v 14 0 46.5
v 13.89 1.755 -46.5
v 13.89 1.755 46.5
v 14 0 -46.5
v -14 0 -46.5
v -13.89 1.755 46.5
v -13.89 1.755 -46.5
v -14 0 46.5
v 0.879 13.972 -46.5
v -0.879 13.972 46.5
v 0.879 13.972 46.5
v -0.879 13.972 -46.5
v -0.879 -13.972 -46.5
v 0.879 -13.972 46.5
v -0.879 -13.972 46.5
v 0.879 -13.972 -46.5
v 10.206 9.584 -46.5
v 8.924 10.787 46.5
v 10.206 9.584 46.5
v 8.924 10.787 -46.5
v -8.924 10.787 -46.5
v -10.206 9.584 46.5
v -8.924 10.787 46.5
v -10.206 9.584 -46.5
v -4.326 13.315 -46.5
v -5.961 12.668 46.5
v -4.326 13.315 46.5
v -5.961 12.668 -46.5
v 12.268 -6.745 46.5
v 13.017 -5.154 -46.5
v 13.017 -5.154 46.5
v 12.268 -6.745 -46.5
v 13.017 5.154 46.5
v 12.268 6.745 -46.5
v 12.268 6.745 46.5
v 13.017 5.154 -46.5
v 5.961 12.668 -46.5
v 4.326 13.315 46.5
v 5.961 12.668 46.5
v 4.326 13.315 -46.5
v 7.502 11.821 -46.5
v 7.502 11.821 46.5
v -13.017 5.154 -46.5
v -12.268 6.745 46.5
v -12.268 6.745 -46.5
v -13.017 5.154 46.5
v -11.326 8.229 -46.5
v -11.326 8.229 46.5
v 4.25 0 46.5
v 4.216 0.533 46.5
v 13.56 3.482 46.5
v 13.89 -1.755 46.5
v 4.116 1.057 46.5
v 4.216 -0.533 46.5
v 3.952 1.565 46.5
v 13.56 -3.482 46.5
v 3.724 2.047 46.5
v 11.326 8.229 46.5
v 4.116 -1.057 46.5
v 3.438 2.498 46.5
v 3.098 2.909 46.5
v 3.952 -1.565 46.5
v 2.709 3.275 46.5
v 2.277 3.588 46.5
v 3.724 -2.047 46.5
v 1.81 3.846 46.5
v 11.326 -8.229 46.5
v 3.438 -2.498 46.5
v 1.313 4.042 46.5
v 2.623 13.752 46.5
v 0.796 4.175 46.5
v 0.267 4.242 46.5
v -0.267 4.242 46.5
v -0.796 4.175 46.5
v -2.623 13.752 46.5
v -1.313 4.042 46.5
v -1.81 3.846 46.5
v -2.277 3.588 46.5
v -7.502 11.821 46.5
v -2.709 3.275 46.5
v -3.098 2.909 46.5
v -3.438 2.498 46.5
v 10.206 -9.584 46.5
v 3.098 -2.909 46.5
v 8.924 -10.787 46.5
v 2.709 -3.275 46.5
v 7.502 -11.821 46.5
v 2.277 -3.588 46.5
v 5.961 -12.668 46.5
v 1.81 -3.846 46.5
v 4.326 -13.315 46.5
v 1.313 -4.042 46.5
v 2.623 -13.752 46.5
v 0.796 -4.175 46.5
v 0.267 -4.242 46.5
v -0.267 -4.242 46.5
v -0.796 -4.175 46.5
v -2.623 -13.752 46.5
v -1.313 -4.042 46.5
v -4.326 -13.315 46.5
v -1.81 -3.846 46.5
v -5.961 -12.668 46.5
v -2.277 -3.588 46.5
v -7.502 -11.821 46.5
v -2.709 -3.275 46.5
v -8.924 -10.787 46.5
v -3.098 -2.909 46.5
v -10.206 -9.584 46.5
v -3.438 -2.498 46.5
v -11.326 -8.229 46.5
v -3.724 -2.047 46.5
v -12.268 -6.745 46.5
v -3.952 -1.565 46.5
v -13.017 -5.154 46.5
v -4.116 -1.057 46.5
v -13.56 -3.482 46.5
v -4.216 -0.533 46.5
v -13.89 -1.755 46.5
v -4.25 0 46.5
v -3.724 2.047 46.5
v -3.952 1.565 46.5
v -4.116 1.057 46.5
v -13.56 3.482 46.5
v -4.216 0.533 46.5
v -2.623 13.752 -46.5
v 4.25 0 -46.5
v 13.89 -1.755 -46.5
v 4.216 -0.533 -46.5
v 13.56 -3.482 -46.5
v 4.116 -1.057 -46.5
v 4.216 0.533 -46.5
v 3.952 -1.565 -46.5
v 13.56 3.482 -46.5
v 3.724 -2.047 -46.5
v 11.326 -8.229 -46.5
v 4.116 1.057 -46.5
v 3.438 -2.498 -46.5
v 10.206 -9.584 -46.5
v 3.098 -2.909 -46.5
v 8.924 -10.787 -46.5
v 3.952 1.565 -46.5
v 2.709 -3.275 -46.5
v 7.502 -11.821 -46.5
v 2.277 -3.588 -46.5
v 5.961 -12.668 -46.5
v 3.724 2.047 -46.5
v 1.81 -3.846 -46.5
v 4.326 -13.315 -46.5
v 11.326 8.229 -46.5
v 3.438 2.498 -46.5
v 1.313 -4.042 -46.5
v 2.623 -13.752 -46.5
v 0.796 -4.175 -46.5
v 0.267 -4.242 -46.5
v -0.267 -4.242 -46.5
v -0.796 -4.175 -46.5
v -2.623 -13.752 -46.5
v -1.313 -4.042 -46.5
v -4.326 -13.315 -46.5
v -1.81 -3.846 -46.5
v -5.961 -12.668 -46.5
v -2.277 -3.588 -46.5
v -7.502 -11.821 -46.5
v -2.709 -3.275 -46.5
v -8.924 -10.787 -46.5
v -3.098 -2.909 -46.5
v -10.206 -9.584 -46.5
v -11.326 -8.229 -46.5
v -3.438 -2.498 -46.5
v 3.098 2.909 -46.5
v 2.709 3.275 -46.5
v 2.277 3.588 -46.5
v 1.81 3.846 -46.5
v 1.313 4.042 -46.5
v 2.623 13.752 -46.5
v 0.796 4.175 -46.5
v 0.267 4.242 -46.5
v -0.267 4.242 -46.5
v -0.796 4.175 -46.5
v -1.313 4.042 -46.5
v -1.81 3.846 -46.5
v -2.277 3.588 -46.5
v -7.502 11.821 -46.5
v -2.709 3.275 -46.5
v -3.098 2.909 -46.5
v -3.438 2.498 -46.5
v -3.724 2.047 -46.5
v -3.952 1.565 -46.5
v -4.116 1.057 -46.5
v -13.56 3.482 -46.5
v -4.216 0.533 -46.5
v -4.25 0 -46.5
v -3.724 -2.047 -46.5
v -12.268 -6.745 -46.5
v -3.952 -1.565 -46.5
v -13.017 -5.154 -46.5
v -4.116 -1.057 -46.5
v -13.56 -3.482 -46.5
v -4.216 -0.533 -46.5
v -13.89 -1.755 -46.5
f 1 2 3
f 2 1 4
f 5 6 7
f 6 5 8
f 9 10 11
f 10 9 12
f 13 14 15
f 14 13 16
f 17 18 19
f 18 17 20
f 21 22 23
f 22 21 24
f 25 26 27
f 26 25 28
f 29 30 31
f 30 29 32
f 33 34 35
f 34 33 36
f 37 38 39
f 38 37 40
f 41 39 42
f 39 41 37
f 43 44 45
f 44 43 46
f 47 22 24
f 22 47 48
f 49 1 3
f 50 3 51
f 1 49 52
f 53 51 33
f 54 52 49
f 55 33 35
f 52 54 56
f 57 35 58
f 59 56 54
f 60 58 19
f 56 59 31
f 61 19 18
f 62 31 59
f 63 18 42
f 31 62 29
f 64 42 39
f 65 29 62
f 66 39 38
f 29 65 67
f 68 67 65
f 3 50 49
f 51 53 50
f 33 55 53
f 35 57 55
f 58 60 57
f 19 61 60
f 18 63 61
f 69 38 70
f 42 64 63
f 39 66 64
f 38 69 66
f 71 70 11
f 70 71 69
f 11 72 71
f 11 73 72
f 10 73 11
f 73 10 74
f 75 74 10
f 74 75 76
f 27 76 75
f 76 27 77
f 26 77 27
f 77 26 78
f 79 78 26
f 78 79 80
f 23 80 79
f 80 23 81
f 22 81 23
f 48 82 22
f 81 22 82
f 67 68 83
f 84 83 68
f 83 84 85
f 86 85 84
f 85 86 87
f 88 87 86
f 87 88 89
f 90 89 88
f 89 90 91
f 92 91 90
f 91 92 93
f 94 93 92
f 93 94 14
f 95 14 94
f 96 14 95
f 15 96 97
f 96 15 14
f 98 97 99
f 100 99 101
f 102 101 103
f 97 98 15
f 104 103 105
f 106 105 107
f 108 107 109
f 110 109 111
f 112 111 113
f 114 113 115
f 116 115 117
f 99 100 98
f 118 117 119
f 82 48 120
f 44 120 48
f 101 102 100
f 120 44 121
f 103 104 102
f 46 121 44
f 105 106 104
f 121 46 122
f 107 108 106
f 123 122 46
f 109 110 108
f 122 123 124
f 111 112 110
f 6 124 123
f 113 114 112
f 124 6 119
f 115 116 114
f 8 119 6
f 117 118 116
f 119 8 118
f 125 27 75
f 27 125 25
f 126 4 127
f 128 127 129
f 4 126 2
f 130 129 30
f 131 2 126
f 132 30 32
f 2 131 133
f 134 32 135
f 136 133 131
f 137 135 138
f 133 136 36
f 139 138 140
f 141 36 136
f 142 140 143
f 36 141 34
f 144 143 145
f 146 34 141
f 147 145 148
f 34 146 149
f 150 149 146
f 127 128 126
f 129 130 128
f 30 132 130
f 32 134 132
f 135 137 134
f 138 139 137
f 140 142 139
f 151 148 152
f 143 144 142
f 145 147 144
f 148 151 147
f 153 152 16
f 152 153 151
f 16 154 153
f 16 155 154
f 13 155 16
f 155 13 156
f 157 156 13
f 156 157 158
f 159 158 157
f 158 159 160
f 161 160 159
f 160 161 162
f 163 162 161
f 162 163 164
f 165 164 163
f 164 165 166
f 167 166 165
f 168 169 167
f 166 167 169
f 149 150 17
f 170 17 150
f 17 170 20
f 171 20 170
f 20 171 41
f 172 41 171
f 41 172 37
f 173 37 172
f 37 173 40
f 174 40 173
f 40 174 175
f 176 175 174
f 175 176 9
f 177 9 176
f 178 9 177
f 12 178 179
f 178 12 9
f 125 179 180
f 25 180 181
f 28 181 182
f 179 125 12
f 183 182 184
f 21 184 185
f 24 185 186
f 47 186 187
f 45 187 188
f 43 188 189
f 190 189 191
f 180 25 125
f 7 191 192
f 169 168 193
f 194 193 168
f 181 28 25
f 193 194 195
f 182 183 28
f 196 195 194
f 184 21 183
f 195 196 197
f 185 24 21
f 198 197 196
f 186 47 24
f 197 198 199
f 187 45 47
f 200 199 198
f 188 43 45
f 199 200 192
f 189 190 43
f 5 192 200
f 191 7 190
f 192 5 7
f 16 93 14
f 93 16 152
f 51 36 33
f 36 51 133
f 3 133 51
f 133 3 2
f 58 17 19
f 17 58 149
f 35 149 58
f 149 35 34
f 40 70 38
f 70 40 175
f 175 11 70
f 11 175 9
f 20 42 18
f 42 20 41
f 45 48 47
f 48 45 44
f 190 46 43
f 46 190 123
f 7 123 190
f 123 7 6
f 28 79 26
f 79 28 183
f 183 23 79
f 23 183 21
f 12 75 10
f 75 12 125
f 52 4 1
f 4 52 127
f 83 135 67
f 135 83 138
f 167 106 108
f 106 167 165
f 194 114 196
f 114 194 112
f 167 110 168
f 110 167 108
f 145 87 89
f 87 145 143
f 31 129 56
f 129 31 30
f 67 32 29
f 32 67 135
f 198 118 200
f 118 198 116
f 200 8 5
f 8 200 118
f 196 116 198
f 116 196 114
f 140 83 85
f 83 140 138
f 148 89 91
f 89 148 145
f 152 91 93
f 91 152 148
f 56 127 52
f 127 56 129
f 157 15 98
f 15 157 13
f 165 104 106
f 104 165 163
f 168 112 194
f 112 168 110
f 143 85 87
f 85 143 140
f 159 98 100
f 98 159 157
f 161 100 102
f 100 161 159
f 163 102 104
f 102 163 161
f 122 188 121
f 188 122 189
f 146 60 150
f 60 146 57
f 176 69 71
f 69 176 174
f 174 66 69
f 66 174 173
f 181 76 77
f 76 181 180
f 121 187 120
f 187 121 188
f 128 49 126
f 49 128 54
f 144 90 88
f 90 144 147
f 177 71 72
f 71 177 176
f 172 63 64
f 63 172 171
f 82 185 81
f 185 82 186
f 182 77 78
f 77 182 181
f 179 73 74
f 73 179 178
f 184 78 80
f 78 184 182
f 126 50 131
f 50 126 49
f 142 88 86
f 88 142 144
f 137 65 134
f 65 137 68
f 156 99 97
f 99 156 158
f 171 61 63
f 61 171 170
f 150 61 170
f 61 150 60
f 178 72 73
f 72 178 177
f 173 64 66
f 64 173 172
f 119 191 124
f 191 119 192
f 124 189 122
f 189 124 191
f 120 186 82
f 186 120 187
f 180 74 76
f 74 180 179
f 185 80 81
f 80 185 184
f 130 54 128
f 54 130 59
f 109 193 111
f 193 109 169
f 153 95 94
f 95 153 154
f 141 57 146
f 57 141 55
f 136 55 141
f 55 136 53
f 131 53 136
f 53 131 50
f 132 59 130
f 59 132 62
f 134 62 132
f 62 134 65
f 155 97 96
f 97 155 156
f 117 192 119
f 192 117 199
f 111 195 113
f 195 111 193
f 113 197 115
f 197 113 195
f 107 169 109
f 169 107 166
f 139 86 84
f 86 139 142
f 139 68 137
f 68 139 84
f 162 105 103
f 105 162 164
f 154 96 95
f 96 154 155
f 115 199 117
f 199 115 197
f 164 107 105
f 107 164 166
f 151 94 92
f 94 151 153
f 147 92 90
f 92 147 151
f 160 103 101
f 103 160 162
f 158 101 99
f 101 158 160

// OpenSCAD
$fn = 50;


difference() {
	union() {
		translate(v = [0, 0, -46.5000000000]) {
			cylinder(h = 93, r = 14.0000000000);
		}
	}
	union() {
		translate(v = [0, 0, -100.0000000000]) {
			cylinder(h = 200, r = 4.2500000000);
		}
	}
}
